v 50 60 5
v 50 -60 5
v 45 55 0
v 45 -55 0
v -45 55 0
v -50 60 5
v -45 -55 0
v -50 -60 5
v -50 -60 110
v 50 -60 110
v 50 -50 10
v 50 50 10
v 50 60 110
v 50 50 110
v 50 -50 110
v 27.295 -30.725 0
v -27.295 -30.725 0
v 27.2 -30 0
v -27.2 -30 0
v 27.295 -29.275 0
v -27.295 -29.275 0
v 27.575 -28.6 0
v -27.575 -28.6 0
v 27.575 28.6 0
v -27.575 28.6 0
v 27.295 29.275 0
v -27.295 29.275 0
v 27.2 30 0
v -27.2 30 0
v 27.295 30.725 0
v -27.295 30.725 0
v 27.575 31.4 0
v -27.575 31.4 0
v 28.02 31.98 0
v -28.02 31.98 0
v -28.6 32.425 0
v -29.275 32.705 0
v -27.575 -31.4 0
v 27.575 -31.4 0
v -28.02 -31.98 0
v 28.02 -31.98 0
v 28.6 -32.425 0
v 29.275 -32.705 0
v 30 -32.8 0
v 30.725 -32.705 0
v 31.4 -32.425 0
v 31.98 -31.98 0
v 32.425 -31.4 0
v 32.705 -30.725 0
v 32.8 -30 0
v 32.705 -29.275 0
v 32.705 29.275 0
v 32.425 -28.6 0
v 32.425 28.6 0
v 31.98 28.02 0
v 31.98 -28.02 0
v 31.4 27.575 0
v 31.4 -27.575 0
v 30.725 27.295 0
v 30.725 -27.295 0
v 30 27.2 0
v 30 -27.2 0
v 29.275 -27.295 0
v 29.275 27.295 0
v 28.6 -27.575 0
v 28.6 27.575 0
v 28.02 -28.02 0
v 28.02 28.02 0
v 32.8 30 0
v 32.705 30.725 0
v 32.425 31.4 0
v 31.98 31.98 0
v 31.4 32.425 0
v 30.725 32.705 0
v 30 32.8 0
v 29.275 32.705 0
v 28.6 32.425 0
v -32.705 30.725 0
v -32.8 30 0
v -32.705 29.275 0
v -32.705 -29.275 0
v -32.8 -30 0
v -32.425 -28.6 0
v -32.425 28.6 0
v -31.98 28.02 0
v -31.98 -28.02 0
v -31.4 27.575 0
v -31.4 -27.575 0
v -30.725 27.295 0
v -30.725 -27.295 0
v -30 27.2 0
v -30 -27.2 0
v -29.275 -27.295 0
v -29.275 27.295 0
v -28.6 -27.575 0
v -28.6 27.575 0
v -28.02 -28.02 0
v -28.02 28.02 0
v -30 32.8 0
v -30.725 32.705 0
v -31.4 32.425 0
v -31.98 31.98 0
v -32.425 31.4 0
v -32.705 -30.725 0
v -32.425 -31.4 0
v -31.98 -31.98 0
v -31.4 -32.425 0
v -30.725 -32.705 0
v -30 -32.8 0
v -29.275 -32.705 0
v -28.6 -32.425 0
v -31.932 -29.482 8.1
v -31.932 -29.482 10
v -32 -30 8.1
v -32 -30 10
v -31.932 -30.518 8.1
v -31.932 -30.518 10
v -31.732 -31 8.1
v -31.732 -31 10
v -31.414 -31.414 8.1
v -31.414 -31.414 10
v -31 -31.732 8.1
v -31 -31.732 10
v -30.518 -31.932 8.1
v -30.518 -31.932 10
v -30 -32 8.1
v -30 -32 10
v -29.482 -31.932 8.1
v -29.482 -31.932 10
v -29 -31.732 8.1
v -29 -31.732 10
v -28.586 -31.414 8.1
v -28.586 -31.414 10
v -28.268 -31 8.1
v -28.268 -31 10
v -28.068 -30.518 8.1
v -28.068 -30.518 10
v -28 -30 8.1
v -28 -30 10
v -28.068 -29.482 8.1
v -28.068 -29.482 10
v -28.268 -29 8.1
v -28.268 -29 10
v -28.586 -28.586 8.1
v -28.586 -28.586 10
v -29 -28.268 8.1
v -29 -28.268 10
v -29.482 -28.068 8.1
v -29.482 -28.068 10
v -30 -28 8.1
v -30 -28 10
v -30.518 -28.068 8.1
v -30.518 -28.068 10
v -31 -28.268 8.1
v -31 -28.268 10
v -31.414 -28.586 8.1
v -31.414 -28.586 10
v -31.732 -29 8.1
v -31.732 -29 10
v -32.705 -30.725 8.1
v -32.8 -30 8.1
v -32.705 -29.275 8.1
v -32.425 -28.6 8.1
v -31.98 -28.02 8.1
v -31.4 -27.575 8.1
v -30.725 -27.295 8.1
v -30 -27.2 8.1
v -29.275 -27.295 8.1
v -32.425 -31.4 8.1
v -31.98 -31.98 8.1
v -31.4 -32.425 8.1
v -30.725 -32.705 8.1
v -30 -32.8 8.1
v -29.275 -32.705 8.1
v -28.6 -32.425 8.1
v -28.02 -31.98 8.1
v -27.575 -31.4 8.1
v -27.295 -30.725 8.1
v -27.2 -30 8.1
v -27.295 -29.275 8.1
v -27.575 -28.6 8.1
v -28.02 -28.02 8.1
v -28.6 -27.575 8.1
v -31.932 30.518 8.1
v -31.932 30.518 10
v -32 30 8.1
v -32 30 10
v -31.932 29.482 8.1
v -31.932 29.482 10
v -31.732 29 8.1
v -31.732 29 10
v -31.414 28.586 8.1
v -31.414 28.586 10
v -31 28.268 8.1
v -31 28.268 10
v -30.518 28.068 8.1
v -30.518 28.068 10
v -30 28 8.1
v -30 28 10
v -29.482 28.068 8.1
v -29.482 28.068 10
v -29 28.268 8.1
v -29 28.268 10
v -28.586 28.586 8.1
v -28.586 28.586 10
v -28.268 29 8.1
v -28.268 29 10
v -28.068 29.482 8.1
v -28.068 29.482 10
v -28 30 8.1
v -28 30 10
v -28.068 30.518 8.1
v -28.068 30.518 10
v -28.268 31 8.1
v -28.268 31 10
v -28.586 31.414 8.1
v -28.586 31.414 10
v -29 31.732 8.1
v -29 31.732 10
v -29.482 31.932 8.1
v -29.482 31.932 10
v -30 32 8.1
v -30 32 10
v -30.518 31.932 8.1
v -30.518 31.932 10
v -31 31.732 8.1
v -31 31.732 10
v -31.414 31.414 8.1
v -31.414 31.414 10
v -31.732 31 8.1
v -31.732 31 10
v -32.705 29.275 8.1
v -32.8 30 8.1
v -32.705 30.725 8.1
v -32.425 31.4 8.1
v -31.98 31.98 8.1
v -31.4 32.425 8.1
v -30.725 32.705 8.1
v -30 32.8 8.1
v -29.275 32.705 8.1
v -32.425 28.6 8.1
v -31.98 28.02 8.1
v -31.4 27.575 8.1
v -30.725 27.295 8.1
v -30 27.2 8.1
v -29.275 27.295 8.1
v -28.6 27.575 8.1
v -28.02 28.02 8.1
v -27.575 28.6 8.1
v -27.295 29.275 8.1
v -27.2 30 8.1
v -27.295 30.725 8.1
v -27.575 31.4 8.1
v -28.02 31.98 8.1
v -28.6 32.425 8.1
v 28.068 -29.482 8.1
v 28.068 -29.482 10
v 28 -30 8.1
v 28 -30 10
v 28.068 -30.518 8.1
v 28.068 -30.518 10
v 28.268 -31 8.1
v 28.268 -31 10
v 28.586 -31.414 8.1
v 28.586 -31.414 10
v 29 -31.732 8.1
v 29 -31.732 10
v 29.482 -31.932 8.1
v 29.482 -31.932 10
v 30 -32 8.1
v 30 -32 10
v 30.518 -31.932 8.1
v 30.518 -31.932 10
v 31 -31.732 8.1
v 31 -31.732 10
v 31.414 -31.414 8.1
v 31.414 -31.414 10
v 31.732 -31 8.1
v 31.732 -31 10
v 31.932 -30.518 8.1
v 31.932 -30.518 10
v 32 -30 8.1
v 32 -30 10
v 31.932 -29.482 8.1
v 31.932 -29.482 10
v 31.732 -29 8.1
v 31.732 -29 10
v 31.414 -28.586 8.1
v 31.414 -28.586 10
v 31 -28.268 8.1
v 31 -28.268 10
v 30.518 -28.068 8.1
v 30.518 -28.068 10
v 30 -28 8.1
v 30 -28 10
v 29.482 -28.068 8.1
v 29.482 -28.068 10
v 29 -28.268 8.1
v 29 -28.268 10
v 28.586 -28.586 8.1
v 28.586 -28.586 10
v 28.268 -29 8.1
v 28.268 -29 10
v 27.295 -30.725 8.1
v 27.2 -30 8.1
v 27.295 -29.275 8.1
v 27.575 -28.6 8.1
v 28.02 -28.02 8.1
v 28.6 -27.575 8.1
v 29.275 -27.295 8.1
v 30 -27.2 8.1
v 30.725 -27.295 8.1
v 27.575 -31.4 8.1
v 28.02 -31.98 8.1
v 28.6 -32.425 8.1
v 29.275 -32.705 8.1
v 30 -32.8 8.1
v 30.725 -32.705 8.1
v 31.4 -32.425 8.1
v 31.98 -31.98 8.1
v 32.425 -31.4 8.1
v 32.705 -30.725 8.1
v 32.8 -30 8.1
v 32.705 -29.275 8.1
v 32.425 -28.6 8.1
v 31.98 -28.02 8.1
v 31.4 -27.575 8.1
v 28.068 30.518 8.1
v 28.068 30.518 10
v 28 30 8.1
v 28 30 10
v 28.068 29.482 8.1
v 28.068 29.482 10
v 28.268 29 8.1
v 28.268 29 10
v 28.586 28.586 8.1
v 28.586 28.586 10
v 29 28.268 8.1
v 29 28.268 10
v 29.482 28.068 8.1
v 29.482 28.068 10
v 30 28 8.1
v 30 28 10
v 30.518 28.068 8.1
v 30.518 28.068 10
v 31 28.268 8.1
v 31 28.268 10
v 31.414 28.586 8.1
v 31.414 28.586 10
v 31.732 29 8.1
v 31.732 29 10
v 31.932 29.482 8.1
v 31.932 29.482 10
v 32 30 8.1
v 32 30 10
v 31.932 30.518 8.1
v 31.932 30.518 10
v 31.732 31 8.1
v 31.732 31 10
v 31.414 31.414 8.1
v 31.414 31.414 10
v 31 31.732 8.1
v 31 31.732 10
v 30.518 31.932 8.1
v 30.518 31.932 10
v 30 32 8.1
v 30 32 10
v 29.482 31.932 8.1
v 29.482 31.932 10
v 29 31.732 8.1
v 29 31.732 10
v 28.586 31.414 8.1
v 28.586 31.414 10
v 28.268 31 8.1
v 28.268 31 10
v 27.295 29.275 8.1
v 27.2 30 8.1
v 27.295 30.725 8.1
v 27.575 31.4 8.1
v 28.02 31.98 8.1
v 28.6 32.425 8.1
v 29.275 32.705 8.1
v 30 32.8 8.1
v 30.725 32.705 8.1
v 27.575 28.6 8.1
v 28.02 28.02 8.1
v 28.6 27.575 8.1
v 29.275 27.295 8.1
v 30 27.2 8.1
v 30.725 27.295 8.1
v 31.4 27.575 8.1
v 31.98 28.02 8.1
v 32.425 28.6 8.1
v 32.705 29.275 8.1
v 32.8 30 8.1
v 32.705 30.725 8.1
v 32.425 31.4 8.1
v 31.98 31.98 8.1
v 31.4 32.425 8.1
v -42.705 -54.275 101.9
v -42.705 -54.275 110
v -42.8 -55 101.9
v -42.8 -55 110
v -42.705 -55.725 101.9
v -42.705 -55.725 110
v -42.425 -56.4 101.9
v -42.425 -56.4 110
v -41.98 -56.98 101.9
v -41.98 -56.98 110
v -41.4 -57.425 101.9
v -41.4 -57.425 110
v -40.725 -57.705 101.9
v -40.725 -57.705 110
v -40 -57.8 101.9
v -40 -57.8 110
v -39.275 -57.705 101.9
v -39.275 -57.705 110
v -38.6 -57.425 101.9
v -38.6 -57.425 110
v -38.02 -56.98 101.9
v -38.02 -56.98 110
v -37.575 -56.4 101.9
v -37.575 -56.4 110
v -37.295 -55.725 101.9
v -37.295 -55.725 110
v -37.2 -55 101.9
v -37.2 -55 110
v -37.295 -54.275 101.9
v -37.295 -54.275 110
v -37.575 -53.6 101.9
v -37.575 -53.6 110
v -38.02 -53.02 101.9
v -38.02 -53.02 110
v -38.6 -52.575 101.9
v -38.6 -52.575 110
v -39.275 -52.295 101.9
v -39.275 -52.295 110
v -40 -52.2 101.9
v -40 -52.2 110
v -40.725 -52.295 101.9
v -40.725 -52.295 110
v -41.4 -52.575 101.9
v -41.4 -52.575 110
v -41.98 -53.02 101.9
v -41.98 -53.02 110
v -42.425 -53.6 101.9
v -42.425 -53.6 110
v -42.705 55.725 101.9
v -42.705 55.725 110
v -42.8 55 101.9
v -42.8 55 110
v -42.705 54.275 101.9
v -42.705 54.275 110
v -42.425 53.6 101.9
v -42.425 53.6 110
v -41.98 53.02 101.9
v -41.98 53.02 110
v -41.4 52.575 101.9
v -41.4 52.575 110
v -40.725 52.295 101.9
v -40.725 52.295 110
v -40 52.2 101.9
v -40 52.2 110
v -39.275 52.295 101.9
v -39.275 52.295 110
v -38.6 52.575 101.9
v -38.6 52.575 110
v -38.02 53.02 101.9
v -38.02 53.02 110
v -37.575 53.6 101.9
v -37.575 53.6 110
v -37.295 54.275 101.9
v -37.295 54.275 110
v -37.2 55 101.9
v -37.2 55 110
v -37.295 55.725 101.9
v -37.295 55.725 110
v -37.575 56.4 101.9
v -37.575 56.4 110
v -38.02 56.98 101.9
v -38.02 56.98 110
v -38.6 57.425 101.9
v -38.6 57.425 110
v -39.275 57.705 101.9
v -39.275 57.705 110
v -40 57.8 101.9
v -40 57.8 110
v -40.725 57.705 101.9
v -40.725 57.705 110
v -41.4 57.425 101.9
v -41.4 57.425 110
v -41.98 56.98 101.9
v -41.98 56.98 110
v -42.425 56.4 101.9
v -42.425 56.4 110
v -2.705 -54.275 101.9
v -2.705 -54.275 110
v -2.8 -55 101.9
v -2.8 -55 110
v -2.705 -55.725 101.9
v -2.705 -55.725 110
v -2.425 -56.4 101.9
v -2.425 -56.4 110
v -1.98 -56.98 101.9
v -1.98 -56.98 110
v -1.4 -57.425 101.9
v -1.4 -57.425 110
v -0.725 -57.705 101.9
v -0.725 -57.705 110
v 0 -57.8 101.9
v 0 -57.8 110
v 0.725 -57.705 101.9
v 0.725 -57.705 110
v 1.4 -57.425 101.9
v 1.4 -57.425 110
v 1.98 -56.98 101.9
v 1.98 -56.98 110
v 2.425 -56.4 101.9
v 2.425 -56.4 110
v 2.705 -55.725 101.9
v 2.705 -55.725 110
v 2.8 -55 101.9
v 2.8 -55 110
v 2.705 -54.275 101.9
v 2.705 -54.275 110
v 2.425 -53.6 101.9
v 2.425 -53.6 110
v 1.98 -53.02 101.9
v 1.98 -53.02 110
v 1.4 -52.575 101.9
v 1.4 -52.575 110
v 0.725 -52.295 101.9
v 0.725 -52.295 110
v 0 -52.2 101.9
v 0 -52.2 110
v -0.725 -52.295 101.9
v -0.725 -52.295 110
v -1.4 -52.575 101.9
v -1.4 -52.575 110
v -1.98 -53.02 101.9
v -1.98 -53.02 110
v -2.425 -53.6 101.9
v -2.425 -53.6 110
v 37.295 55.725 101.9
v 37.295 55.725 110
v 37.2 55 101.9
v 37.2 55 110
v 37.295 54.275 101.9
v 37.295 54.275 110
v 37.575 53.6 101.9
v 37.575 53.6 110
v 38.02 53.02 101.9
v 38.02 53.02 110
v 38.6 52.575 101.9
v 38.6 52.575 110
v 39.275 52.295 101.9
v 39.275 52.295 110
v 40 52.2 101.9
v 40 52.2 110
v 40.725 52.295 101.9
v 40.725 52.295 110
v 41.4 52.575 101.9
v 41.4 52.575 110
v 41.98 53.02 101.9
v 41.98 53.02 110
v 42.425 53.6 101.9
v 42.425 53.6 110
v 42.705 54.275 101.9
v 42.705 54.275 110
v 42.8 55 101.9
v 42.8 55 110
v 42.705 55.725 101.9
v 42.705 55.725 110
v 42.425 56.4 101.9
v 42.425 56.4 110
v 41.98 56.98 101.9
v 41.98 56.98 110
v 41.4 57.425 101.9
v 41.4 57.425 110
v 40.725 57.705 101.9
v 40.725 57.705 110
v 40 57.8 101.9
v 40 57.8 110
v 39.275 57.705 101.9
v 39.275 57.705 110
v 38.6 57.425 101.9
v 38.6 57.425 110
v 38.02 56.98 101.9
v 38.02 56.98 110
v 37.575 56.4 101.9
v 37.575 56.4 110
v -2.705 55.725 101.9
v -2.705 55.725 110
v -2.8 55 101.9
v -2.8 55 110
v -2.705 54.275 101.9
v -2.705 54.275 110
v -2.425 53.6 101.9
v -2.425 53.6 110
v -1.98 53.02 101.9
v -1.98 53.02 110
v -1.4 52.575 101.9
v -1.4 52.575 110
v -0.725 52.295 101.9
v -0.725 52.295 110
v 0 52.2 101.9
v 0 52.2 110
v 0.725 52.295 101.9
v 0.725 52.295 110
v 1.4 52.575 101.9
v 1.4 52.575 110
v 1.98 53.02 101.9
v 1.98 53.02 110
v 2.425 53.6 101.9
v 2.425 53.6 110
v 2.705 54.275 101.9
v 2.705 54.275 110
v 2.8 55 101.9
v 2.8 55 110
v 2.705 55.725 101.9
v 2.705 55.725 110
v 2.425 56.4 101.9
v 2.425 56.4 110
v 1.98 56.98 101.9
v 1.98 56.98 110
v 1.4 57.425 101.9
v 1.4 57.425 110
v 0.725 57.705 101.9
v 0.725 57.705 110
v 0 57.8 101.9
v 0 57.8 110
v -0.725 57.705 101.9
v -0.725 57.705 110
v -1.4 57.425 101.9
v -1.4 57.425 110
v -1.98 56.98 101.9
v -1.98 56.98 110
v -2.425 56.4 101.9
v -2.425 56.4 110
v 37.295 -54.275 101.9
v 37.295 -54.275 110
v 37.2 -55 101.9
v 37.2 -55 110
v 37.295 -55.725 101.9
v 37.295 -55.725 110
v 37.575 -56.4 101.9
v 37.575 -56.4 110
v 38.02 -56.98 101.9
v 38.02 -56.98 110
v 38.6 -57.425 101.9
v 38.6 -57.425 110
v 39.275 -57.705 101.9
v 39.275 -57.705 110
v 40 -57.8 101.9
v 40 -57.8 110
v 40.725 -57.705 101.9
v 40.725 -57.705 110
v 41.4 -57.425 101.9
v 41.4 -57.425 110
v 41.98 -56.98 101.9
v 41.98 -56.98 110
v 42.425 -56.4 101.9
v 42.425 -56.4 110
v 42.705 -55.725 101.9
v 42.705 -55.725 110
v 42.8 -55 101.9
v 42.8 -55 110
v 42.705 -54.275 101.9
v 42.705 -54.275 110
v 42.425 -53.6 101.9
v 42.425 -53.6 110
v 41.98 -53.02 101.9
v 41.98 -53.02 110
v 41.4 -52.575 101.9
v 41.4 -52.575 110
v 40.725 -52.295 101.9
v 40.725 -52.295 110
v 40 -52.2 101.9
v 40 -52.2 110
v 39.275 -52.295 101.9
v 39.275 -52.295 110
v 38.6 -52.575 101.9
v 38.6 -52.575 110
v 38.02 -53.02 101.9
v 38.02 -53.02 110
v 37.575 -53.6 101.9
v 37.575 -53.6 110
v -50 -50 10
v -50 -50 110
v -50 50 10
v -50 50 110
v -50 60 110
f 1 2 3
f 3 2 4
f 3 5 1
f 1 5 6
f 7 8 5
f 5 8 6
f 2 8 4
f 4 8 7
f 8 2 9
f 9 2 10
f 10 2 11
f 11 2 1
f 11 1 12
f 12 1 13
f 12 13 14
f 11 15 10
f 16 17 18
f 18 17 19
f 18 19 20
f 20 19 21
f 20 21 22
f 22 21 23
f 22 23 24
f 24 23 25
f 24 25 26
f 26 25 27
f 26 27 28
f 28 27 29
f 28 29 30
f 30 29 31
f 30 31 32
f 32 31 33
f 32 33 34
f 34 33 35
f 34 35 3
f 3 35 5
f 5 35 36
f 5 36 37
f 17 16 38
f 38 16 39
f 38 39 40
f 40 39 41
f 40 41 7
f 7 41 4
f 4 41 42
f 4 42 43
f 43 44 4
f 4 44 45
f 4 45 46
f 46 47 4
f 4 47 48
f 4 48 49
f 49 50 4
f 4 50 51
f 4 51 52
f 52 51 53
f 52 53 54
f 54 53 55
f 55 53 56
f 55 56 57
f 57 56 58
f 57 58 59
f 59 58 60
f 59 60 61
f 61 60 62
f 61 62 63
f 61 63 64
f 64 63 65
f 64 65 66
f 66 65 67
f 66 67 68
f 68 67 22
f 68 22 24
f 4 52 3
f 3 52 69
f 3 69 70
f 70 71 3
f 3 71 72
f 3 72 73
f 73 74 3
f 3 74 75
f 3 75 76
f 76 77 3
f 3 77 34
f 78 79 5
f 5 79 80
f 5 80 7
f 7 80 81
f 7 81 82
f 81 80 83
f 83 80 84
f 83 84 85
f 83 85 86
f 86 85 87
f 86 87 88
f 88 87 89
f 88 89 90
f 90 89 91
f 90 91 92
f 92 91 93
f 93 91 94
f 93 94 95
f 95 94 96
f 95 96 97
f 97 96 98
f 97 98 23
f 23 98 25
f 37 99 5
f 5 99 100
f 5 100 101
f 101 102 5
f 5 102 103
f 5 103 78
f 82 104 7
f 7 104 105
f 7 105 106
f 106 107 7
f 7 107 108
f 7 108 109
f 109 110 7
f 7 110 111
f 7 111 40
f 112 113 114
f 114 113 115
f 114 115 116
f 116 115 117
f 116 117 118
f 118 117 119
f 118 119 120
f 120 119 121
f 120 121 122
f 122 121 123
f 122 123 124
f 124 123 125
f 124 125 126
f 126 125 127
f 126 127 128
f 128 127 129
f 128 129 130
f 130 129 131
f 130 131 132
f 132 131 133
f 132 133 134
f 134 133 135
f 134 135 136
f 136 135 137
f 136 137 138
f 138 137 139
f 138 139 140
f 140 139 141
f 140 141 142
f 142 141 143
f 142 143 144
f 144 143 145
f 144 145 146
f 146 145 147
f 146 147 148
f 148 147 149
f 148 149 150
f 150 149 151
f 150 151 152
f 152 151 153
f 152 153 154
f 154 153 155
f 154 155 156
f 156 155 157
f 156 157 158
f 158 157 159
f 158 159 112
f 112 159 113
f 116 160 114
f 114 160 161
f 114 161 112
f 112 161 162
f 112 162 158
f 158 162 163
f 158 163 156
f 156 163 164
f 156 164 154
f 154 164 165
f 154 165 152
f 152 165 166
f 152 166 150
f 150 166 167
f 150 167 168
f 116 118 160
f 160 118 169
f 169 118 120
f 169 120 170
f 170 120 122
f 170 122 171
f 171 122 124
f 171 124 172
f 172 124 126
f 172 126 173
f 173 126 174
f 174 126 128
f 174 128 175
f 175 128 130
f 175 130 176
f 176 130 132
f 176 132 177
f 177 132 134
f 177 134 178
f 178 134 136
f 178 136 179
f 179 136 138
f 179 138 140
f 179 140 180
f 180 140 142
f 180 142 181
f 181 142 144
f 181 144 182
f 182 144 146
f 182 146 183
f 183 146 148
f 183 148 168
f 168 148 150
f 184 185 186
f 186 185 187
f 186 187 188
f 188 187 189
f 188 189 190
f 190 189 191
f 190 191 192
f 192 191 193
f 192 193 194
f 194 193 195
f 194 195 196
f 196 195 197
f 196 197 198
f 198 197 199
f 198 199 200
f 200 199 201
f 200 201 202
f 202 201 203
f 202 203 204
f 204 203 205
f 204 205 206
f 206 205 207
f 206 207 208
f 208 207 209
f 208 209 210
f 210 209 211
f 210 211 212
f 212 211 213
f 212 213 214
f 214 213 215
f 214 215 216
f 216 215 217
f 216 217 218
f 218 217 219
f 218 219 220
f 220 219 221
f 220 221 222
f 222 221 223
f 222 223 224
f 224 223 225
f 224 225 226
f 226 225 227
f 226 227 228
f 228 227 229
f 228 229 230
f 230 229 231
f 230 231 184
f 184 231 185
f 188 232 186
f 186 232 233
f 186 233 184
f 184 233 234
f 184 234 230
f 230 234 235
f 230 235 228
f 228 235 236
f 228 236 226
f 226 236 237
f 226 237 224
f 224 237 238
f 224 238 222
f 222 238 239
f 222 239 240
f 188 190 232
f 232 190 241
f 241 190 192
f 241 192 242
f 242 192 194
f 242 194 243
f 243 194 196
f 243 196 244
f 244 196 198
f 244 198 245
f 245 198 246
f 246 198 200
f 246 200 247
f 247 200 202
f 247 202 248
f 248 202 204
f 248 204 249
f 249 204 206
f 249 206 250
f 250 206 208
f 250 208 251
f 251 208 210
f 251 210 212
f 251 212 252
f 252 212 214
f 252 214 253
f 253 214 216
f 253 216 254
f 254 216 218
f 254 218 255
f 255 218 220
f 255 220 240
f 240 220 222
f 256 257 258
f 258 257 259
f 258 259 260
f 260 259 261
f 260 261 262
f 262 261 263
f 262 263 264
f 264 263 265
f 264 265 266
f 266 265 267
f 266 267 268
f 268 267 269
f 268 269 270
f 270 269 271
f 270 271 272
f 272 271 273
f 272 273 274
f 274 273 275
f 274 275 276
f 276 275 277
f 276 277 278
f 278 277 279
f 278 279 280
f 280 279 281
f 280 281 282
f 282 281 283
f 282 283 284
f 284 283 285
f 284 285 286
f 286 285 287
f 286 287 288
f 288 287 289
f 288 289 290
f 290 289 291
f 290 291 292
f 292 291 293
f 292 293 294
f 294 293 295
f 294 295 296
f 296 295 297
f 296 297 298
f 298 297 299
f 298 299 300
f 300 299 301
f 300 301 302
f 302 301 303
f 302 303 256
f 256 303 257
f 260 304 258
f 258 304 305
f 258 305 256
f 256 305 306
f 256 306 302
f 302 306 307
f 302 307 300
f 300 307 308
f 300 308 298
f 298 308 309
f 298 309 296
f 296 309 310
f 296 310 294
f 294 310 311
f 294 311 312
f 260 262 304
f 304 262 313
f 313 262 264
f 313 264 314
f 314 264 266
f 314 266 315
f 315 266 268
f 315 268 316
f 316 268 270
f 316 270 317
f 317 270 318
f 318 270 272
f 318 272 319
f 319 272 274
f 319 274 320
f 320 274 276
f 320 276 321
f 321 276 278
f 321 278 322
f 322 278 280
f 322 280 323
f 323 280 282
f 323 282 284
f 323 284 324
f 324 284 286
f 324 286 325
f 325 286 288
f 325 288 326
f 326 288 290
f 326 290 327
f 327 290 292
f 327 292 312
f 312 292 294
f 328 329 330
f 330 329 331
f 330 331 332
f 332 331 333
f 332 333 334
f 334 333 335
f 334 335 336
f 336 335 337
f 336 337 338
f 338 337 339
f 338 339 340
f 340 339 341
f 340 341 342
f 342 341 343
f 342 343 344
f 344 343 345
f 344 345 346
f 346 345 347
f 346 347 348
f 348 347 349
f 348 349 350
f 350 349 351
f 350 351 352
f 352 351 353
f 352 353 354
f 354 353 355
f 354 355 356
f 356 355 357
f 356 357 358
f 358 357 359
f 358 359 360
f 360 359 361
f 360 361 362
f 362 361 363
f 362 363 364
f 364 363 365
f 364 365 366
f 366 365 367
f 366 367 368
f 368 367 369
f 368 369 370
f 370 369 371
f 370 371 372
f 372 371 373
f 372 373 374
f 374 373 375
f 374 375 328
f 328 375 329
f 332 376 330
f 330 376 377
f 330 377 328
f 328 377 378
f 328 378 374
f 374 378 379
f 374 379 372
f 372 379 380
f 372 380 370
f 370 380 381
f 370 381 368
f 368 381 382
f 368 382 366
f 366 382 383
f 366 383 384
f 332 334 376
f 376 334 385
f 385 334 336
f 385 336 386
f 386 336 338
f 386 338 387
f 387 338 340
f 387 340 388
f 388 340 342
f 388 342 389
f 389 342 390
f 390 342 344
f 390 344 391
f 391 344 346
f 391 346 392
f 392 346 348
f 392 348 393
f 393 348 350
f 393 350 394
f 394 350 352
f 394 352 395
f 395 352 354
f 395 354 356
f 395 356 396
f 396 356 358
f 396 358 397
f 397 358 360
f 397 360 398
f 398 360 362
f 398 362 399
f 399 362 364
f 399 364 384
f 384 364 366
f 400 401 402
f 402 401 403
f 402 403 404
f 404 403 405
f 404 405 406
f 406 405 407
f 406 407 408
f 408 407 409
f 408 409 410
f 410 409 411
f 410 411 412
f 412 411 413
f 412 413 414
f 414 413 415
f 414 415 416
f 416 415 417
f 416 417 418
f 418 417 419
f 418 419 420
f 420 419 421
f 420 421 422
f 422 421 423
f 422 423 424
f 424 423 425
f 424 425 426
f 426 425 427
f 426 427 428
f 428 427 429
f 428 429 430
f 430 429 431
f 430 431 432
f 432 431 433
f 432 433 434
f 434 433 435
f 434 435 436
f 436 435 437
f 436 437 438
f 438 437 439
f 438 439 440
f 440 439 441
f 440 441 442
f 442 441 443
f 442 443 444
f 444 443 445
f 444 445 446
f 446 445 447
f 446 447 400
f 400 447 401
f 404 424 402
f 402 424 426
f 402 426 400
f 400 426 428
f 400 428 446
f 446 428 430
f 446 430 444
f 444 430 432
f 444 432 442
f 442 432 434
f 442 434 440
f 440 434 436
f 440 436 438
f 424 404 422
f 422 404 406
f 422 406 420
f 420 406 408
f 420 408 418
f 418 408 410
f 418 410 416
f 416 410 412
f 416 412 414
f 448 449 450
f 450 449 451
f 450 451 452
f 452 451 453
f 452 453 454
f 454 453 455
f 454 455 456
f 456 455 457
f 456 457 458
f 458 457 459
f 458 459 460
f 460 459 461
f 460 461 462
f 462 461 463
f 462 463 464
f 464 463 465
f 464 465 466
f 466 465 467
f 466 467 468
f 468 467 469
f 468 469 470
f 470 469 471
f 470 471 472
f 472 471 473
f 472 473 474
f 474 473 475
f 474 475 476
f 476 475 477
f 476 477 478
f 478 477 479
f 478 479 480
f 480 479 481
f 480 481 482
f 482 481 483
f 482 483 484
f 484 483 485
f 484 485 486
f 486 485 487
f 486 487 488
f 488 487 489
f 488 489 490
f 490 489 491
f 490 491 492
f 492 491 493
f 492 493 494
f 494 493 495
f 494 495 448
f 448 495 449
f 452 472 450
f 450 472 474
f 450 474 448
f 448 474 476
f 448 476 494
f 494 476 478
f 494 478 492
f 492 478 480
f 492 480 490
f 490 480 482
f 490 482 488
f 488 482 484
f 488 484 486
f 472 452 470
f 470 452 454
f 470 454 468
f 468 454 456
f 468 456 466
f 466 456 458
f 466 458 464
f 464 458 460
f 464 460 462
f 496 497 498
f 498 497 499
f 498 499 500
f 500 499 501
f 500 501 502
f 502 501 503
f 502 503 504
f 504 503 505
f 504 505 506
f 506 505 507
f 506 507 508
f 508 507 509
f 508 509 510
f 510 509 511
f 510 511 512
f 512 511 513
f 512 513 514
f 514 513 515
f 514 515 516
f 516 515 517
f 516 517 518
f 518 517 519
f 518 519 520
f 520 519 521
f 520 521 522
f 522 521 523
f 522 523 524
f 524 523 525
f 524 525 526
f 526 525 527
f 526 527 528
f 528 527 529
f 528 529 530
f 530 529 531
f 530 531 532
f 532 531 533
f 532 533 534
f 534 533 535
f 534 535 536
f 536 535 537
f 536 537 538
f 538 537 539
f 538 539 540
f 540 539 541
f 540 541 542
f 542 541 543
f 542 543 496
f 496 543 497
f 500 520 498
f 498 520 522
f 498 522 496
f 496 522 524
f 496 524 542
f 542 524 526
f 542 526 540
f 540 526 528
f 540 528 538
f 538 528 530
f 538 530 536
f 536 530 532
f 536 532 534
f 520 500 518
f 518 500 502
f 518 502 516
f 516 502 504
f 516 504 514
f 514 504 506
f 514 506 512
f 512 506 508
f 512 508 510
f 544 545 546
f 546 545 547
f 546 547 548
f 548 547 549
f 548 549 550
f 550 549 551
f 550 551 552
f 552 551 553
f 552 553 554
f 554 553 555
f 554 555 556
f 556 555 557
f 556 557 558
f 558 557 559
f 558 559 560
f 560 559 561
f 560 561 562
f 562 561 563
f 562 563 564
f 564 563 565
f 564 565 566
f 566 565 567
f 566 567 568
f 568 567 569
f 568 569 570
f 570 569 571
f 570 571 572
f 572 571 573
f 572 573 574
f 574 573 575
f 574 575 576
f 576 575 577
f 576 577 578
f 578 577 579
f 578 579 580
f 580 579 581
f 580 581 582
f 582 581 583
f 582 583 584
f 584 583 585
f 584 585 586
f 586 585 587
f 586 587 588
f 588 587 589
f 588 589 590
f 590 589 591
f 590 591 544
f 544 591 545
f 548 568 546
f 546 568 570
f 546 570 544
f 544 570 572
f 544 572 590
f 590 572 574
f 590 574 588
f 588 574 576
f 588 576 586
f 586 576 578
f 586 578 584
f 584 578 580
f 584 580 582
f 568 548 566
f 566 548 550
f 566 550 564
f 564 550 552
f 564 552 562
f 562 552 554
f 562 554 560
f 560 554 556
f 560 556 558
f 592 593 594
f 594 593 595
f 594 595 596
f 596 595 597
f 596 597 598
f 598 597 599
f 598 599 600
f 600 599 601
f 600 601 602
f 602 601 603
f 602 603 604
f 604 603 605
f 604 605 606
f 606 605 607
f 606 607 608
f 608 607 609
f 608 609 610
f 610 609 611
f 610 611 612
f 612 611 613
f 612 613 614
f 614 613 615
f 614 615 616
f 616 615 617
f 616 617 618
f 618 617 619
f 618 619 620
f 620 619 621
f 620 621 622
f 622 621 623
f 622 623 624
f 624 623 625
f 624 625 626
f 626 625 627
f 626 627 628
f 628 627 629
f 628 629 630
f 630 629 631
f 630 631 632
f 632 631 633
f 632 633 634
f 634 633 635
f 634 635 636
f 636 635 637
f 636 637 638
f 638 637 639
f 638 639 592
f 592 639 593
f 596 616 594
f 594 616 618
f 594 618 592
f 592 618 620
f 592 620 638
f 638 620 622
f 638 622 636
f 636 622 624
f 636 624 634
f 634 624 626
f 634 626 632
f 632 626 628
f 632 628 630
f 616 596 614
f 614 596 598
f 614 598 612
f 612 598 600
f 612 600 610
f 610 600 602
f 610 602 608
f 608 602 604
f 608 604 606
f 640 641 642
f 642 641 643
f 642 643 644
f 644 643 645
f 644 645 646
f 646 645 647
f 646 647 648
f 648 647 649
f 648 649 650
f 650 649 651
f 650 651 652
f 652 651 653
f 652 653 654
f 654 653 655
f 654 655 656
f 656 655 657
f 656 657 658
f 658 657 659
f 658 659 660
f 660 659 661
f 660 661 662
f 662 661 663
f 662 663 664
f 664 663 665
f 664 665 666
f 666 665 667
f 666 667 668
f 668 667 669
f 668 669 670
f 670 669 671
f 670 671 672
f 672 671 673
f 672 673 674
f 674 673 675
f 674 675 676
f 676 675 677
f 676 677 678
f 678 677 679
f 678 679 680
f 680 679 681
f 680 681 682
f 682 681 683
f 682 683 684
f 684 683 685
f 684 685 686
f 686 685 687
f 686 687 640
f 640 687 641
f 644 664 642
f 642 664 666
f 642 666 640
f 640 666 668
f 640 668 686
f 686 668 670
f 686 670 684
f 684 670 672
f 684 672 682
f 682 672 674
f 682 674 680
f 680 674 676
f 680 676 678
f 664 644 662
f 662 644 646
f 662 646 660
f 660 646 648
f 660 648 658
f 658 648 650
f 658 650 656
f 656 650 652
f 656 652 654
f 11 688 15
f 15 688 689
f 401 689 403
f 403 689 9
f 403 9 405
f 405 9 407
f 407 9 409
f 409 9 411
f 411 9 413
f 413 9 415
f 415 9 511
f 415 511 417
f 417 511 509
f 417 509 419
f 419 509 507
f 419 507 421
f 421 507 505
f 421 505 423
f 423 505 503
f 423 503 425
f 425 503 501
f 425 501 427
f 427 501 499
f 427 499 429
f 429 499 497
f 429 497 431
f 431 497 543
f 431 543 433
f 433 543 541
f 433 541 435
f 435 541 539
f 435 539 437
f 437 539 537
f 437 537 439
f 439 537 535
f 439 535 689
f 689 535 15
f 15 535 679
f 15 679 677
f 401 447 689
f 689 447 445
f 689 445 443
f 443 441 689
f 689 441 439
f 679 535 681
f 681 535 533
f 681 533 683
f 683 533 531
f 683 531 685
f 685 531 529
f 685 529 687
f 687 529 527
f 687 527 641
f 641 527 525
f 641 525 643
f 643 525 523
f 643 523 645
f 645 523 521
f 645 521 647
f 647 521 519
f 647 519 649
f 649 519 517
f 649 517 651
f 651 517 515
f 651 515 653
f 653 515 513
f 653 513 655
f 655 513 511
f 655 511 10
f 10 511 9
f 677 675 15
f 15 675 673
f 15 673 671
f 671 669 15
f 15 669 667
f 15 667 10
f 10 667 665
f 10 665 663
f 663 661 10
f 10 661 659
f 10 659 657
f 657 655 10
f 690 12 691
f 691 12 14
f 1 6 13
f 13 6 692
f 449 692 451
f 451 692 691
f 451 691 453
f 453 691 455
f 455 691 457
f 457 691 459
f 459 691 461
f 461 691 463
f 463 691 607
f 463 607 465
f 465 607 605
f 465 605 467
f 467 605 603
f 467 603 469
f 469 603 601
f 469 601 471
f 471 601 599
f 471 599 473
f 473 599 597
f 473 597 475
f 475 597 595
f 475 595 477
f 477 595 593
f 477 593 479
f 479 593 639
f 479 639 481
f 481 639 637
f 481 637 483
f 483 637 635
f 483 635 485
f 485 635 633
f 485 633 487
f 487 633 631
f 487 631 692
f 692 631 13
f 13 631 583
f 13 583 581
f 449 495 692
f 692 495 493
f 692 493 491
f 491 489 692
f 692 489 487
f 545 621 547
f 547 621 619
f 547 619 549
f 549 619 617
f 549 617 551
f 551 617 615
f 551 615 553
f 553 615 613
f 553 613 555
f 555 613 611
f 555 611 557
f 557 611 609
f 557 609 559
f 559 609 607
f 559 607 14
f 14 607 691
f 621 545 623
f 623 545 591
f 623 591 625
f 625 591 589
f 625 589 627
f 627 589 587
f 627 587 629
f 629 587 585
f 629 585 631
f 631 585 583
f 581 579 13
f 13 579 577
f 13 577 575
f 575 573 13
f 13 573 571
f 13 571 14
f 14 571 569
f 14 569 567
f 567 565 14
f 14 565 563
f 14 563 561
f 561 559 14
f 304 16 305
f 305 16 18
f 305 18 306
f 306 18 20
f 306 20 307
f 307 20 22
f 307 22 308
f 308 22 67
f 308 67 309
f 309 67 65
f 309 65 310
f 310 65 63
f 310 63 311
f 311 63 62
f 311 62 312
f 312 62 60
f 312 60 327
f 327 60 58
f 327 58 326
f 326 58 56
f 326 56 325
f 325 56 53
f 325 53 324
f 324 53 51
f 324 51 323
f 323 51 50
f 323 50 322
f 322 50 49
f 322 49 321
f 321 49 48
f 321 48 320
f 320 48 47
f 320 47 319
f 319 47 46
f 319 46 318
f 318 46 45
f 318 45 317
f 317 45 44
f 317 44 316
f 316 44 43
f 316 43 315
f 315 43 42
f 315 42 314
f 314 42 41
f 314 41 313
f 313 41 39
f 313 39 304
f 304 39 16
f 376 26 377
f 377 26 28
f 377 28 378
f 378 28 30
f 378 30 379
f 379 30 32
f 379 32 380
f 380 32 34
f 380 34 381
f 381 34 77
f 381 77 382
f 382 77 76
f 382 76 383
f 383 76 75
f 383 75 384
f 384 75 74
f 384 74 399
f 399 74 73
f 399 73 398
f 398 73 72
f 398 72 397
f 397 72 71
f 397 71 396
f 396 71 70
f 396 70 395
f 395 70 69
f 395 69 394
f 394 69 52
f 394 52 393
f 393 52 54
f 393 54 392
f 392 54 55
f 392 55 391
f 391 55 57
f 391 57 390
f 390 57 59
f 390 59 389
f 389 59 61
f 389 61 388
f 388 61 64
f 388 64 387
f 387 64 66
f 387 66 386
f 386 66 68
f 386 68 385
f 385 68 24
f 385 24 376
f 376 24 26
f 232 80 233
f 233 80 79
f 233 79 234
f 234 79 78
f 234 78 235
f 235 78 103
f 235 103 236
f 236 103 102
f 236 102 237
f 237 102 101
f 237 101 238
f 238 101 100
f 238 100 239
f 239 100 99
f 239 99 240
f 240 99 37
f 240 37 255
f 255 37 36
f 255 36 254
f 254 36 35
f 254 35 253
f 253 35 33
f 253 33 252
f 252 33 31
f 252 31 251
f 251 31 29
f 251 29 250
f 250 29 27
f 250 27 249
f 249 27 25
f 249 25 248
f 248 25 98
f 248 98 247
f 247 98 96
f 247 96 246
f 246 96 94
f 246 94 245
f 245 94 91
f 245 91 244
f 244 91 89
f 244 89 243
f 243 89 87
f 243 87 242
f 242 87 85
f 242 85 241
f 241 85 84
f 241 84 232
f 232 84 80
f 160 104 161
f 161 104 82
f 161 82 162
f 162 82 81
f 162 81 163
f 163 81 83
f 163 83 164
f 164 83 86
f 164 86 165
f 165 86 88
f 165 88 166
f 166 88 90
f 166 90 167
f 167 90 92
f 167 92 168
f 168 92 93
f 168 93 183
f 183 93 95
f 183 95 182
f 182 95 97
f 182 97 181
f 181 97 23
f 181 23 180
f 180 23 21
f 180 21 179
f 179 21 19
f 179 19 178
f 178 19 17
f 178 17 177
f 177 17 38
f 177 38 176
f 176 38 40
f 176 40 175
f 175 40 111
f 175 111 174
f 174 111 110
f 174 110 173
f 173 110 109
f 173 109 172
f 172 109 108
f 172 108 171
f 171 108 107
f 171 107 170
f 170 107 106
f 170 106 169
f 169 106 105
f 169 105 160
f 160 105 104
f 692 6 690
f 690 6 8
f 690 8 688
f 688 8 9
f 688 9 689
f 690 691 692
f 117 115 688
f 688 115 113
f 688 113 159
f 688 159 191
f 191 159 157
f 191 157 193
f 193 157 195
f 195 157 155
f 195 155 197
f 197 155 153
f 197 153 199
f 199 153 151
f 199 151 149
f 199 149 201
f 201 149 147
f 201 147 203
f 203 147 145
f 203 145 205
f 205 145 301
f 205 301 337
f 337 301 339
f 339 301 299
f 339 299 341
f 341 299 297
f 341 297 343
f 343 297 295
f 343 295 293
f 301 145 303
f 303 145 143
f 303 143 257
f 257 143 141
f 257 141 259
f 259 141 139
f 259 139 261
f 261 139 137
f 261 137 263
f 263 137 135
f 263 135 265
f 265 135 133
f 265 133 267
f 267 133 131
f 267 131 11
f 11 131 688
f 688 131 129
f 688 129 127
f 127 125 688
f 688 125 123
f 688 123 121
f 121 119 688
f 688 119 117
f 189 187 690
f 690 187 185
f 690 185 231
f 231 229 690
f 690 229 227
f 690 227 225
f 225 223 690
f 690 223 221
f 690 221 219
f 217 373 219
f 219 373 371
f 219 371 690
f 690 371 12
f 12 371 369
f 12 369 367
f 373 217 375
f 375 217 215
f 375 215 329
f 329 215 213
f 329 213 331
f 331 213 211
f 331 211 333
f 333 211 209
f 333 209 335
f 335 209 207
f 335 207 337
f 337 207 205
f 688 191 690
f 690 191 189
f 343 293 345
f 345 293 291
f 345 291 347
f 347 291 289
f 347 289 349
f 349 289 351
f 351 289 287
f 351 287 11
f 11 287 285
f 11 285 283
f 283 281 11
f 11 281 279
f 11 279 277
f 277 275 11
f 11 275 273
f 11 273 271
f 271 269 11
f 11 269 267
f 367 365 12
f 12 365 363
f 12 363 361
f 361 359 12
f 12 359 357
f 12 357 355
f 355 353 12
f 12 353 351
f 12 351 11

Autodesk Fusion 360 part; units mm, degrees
sketch "Sketch1" plane through (0, 0, 0) normal (0, 0, 1) x (1, 0, 0)
  line L0 (30, 30) -> (-30, 30)
  line L1 (-30, 30) -> (-30, -30)
  line L2 (-30, -30) -> (30, -30)
  line L3 (30, -30) -> (30, 30)
  line L4 (30, 30) -> (-30, -30) construction
  line L5 (-30, 30) -> (30, -30) construction
  circle A0 centre (-30, 30) radius 2.8
  circle A1 centre (30, 30) radius 2.8
  circle A2 centre (-30, -30) radius 2.8
  circle A3 centre (30, -30) radius 2.8
  line L6 (50, 50) -> (-50, 50)
  line L7 (-50, 50) -> (-50, -50)
  line L8 (-50, -50) -> (50, -50)
  line L9 (50, -50) -> (50, 50)
  line L10 (50, 50) -> (-50, -50) construction
  line L11 (-50, 50) -> (50, -50) construction
  line L12 (50, 50) -> (-50, 50)
  line L13 (-50, 50) -> (-50, 60)
  line L14 (-50, 60) -> (50, 60)
  line L15 (50, 60) -> (50, 50)
  line L16 (50, -50) -> (-50, -50)
  line L17 (-50, -50) -> (-50, -60)
  line L18 (-50, -60) -> (50, -60)
  line L19 (50, -60) -> (50, -50)
  circle A4 centre (-30, 30) radius 2
  circle A5 centre (30, 30) radius 2
  circle A6 centre (-30, -30) radius 2
  circle A7 centre (30, -30) radius 2
  dimension "d1" = 60
  dimension "d2" = 60
  dimension "d3" = 5.6
  dimension "d6" = 60
  dimension "d7" = -60
  dimension "d8" = 100
  dimension "d9" = 100
  dimension "d12" = 100
  dimension "d13" = 10
  dimension "d14" = 100
  dimension "d15" = 10
  dimension "d26" = 4
extrude "Extrude1" add sketch "Sketch1" along normal blind 10 contours L0 L1 L2 L3 A0 A1 A2 A3 | L6 L7 L8 L9 L12 L16 makes body 1
extrude "Extrude2" add sketch "Sketch1" along normal blind 110 contours L6 L12 L13 L14 L15 | L8 L16 L17 L18 L19 bodies 1
sketch "Sketch2" plane through (0, 0, 110) normal (0, 0, 1) x (1, 0, 0)
  line L0 (50, 60) -> (-50, 60)
  line L1 (-50, 60) -> (-50, 50)
  line L2 (-50, 50) -> (50, 50)
  line L3 (50, 50) -> (50, 60)
  circle A0 centre (-40, 55) radius 2.8
  line L4 (-50, 55) -> (50, 55)
  circle A1 centre (0, 55) radius 2.8
  circle A2 centre (40, 55) radius 2.8
  circle A3 centre (-40, -55) radius 2.8
  circle A4 centre (0, -55) radius 2.8
  circle A5 centre (40, -55) radius 2.8
  line L5 (-50, 60) -> (50, 60)
  line L6 (50, 60) -> (50, -60)
  line L7 (50, -60) -> (-50, -60)
  line L8 (-50, -60) -> (-50, 60)
  circle A6 centre (-40, 55) radius 2.25
  circle A7 centre (0, 55) radius 2.25
  circle A8 centre (40, 55) radius 2.25
  circle A9 centre (-40, -55) radius 2.25
  circle A10 centre (0, -55) radius 2.25
  circle A11 centre (40, -55) radius 2.25
  dimension "d18" = 5.6
  dimension "d19" = 10
  dimension "d22" = 40
  dimension "d23" = -110
  dimension "d30" = 120
  dimension "d31" = 100
  dimension "d32" = 4.5
extrude "Extrude3" cut sketch "Sketch2" against normal blind 8.1 contours L4 A2 A8 | L4 A2 A8 | A0 L4 A6 | A0 L4 A6 | L4 A8 | L4 A8 | L4 A6 | L4 A6 | L4 A1 A7 | L4 A1 A7 | L4 A7 | L4 A7 | A3 | A4 | A5 | A9 | A10 | A11 bodies 1
extrude "Extrude4" add sketch "Sketch1" against normal blind 1.9 from surface at 10 contours L0 L1 A0 A4 | L0 L1 A0 A4 | L0 L3 A1 A5 | L0 L3 A1 A5 | L1 L2 A2 A6 | L1 L2 A2 A6 | L2 L3 A3 A7 | L2 L3 A3 A7 bodies 1
extrude "Extrude5" add sketch "Sketch2" along normal blind 12 separate body contours L0 L1 L3 A0 L4 A1 A2 L5 L6 L8 | L1 L2 L3 A0 L4 A1 A2 L6 L8 | L2 L6 L7 L8 | L4 A2 A8 | L4 A2 A8 | A0 L4 A6 | A0 L4 A6 | L4 A1 A7 | L4 A1 A7 | A3 | A4 | A5 makes body 2
chamfer "Chamfer1" distance 5 angle 45 4 edges at (-50, 0, 0) (0, 60, 0) (50, 0, 0) (0, -60, 0) on bodies 1
hidden bodies 2
